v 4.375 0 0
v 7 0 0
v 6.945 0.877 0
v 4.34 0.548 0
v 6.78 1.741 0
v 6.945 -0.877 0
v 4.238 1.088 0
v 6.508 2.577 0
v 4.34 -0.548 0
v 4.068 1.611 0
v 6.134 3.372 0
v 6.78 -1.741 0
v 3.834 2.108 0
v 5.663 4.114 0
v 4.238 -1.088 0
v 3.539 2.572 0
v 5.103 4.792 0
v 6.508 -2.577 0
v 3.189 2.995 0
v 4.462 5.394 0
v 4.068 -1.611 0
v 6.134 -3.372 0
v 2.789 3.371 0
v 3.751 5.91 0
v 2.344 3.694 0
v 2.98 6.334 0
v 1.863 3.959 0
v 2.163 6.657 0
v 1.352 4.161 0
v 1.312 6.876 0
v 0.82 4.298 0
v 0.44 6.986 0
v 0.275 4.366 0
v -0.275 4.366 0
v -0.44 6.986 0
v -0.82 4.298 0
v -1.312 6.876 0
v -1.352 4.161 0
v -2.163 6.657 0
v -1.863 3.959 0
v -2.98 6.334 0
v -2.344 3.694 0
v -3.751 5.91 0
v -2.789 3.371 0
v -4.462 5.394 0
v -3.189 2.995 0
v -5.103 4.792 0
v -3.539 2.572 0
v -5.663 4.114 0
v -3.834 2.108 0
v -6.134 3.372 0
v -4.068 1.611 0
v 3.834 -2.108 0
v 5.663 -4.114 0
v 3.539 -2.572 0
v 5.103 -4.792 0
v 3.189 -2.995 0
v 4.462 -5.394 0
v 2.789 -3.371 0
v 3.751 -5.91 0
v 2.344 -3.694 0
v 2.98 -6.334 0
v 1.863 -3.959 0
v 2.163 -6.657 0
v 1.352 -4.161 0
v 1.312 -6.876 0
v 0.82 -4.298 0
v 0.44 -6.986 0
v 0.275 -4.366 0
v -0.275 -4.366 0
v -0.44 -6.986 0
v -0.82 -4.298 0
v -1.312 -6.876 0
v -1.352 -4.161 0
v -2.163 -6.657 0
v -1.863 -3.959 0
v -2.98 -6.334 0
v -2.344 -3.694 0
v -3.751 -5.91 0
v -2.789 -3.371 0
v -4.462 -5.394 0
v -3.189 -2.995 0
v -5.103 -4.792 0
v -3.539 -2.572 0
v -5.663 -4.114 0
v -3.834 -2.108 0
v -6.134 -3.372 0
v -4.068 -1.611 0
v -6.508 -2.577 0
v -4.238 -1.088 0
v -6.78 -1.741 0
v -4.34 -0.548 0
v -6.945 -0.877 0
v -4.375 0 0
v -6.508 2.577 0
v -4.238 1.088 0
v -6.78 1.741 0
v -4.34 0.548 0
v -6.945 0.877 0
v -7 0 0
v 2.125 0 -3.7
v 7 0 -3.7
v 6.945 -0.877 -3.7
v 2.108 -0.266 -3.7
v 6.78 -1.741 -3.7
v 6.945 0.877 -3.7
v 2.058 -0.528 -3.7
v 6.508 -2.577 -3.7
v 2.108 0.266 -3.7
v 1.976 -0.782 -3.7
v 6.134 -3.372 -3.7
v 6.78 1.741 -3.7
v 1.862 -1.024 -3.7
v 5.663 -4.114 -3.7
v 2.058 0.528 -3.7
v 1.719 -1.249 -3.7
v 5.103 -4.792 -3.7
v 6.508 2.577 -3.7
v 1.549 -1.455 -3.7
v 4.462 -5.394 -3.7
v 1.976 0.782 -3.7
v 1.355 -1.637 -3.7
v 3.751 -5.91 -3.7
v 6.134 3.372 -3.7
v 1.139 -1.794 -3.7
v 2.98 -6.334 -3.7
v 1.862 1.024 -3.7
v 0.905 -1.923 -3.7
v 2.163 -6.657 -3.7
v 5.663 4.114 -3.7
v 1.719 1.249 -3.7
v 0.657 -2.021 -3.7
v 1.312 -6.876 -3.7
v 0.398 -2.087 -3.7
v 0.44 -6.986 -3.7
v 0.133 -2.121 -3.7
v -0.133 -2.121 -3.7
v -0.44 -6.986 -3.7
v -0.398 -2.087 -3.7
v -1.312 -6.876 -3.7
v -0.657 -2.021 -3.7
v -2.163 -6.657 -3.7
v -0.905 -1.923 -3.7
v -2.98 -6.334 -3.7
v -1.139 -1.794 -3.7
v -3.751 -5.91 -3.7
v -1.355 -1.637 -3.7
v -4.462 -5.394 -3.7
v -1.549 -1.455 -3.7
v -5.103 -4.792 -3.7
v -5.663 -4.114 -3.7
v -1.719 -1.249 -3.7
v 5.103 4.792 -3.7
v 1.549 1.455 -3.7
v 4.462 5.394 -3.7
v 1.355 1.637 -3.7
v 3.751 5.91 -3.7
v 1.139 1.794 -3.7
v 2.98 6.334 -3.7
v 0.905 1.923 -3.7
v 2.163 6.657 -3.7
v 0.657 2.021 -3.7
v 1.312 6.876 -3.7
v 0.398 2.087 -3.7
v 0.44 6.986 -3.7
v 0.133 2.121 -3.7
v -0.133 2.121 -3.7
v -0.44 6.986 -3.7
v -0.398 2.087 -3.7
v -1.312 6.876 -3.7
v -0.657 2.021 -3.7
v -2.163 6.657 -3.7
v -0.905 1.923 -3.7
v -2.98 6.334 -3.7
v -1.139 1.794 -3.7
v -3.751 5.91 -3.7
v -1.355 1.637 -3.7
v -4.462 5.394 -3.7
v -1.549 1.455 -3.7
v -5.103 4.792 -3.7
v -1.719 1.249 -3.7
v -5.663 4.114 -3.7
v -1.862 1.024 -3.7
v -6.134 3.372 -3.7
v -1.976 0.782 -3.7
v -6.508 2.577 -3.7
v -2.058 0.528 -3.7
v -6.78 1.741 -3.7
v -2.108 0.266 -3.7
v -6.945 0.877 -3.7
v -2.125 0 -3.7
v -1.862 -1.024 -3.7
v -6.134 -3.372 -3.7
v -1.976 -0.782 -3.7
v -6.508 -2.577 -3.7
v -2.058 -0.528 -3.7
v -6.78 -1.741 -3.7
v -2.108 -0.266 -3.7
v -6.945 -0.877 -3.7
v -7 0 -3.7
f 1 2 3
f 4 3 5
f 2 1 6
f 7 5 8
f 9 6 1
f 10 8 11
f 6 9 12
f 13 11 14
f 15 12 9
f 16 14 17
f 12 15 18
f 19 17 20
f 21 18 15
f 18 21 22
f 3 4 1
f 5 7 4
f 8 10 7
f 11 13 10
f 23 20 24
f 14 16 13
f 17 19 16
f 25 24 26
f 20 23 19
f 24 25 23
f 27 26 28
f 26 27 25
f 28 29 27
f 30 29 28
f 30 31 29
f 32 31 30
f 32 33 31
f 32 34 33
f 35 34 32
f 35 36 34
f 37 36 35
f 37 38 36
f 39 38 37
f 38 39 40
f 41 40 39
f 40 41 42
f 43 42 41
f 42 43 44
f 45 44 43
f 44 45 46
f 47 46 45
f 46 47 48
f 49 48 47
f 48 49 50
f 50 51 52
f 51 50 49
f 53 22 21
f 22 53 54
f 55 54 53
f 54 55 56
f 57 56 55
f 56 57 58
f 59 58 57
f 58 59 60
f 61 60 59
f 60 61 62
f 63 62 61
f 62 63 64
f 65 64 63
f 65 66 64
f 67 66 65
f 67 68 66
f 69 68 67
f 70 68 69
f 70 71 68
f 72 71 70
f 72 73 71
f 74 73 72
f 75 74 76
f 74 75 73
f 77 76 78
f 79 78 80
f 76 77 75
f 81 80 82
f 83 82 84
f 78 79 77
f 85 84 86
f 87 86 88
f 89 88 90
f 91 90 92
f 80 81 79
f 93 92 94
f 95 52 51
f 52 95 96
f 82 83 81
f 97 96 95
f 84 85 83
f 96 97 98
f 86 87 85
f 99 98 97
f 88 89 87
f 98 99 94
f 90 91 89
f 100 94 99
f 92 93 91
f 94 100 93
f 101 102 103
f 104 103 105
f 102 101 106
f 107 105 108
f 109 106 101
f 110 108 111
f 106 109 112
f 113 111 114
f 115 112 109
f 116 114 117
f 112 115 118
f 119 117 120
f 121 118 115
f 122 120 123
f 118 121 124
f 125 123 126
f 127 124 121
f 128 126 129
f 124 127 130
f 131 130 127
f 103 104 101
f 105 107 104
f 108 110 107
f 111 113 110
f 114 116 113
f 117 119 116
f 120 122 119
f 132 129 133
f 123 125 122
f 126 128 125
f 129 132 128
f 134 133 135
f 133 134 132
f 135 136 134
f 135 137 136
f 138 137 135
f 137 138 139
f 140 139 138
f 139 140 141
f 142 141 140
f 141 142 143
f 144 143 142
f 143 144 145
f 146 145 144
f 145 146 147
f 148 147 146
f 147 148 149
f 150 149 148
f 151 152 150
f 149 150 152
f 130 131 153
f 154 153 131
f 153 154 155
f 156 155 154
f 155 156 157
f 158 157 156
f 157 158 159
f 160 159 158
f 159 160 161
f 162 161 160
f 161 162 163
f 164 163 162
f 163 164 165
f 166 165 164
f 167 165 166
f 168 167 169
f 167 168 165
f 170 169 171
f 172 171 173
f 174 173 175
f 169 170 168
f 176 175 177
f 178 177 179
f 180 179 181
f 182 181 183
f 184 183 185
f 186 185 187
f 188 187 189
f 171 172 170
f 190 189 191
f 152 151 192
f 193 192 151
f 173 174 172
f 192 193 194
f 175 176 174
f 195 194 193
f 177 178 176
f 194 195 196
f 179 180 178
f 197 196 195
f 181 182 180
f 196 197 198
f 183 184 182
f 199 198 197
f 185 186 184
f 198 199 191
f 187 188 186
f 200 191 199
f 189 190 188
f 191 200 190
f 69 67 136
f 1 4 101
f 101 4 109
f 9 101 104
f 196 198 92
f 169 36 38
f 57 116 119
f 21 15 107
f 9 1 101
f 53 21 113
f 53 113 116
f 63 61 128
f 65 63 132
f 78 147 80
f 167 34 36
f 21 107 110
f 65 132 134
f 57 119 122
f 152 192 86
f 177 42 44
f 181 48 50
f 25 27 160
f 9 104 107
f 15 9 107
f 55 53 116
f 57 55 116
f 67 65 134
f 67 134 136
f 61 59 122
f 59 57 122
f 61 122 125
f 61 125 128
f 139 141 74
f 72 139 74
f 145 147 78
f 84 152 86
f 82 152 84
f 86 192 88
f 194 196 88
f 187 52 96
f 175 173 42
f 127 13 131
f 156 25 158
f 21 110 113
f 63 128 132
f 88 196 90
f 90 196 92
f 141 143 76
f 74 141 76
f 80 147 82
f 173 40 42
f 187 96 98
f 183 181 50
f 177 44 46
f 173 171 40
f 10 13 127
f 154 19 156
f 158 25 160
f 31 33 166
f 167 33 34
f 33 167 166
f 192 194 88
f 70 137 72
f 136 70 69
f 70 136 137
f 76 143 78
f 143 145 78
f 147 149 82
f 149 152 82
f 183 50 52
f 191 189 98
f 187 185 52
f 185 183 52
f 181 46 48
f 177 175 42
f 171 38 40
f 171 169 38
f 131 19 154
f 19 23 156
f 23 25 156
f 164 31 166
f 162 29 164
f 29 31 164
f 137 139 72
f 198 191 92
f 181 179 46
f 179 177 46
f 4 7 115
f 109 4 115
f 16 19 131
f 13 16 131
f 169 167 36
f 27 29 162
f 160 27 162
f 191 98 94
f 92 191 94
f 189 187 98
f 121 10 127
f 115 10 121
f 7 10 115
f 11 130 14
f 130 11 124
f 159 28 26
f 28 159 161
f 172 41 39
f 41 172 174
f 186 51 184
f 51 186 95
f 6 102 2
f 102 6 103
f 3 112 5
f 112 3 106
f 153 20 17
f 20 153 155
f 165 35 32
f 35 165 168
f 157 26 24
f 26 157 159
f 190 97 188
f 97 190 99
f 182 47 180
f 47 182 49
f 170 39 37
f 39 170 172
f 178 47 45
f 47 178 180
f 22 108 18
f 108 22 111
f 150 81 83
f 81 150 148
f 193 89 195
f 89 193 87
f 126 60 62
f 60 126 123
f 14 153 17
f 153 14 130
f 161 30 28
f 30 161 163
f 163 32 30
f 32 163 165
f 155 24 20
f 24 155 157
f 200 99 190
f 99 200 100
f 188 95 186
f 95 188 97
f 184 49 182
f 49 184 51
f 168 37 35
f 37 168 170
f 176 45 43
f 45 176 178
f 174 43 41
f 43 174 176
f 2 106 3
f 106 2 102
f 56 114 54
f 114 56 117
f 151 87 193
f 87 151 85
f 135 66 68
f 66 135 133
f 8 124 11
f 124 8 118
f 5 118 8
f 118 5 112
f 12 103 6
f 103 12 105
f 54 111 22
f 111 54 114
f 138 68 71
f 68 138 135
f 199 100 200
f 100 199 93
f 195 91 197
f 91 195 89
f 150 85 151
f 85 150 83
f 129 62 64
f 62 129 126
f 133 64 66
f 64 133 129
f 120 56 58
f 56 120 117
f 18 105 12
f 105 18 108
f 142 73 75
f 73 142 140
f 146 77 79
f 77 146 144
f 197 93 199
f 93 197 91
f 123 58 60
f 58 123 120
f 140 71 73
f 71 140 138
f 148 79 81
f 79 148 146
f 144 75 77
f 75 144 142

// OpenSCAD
$fn = 50;


difference() {
	union() {
		translate(v = [0, 0, -3.7000000000]) {
			cylinder(h = 3.7000000000, r = 7.0000000000);
		}
	}
	union() {
		translate(v = [0, 0, 0]) {
			rotate(a = [0, 0, 0]) {
				difference() {
					union() {
						#translate(v = [0, 0, -3.7000000000]) {
							cylinder(h = 3.7000000000, r = 2.0000000000);
						}
						#translate(v = [0, 0, -3.7000000000]) {
							cylinder(h = 3.7000000000, r1 = 2.1250000000, r2 = 4.3750000000);
						}
						#translate(v = [0, 0, -3.7000000000]) {
							cylinder(h = 3.7000000000, r = 2.1250000000);
						}
						#translate(v = [0, 0, -3.7000000000]) {
							cylinder(h = 3.7000000000, r = 2.0000000000);
						}
					}
					union();
				}
			}
		}
	}
}
